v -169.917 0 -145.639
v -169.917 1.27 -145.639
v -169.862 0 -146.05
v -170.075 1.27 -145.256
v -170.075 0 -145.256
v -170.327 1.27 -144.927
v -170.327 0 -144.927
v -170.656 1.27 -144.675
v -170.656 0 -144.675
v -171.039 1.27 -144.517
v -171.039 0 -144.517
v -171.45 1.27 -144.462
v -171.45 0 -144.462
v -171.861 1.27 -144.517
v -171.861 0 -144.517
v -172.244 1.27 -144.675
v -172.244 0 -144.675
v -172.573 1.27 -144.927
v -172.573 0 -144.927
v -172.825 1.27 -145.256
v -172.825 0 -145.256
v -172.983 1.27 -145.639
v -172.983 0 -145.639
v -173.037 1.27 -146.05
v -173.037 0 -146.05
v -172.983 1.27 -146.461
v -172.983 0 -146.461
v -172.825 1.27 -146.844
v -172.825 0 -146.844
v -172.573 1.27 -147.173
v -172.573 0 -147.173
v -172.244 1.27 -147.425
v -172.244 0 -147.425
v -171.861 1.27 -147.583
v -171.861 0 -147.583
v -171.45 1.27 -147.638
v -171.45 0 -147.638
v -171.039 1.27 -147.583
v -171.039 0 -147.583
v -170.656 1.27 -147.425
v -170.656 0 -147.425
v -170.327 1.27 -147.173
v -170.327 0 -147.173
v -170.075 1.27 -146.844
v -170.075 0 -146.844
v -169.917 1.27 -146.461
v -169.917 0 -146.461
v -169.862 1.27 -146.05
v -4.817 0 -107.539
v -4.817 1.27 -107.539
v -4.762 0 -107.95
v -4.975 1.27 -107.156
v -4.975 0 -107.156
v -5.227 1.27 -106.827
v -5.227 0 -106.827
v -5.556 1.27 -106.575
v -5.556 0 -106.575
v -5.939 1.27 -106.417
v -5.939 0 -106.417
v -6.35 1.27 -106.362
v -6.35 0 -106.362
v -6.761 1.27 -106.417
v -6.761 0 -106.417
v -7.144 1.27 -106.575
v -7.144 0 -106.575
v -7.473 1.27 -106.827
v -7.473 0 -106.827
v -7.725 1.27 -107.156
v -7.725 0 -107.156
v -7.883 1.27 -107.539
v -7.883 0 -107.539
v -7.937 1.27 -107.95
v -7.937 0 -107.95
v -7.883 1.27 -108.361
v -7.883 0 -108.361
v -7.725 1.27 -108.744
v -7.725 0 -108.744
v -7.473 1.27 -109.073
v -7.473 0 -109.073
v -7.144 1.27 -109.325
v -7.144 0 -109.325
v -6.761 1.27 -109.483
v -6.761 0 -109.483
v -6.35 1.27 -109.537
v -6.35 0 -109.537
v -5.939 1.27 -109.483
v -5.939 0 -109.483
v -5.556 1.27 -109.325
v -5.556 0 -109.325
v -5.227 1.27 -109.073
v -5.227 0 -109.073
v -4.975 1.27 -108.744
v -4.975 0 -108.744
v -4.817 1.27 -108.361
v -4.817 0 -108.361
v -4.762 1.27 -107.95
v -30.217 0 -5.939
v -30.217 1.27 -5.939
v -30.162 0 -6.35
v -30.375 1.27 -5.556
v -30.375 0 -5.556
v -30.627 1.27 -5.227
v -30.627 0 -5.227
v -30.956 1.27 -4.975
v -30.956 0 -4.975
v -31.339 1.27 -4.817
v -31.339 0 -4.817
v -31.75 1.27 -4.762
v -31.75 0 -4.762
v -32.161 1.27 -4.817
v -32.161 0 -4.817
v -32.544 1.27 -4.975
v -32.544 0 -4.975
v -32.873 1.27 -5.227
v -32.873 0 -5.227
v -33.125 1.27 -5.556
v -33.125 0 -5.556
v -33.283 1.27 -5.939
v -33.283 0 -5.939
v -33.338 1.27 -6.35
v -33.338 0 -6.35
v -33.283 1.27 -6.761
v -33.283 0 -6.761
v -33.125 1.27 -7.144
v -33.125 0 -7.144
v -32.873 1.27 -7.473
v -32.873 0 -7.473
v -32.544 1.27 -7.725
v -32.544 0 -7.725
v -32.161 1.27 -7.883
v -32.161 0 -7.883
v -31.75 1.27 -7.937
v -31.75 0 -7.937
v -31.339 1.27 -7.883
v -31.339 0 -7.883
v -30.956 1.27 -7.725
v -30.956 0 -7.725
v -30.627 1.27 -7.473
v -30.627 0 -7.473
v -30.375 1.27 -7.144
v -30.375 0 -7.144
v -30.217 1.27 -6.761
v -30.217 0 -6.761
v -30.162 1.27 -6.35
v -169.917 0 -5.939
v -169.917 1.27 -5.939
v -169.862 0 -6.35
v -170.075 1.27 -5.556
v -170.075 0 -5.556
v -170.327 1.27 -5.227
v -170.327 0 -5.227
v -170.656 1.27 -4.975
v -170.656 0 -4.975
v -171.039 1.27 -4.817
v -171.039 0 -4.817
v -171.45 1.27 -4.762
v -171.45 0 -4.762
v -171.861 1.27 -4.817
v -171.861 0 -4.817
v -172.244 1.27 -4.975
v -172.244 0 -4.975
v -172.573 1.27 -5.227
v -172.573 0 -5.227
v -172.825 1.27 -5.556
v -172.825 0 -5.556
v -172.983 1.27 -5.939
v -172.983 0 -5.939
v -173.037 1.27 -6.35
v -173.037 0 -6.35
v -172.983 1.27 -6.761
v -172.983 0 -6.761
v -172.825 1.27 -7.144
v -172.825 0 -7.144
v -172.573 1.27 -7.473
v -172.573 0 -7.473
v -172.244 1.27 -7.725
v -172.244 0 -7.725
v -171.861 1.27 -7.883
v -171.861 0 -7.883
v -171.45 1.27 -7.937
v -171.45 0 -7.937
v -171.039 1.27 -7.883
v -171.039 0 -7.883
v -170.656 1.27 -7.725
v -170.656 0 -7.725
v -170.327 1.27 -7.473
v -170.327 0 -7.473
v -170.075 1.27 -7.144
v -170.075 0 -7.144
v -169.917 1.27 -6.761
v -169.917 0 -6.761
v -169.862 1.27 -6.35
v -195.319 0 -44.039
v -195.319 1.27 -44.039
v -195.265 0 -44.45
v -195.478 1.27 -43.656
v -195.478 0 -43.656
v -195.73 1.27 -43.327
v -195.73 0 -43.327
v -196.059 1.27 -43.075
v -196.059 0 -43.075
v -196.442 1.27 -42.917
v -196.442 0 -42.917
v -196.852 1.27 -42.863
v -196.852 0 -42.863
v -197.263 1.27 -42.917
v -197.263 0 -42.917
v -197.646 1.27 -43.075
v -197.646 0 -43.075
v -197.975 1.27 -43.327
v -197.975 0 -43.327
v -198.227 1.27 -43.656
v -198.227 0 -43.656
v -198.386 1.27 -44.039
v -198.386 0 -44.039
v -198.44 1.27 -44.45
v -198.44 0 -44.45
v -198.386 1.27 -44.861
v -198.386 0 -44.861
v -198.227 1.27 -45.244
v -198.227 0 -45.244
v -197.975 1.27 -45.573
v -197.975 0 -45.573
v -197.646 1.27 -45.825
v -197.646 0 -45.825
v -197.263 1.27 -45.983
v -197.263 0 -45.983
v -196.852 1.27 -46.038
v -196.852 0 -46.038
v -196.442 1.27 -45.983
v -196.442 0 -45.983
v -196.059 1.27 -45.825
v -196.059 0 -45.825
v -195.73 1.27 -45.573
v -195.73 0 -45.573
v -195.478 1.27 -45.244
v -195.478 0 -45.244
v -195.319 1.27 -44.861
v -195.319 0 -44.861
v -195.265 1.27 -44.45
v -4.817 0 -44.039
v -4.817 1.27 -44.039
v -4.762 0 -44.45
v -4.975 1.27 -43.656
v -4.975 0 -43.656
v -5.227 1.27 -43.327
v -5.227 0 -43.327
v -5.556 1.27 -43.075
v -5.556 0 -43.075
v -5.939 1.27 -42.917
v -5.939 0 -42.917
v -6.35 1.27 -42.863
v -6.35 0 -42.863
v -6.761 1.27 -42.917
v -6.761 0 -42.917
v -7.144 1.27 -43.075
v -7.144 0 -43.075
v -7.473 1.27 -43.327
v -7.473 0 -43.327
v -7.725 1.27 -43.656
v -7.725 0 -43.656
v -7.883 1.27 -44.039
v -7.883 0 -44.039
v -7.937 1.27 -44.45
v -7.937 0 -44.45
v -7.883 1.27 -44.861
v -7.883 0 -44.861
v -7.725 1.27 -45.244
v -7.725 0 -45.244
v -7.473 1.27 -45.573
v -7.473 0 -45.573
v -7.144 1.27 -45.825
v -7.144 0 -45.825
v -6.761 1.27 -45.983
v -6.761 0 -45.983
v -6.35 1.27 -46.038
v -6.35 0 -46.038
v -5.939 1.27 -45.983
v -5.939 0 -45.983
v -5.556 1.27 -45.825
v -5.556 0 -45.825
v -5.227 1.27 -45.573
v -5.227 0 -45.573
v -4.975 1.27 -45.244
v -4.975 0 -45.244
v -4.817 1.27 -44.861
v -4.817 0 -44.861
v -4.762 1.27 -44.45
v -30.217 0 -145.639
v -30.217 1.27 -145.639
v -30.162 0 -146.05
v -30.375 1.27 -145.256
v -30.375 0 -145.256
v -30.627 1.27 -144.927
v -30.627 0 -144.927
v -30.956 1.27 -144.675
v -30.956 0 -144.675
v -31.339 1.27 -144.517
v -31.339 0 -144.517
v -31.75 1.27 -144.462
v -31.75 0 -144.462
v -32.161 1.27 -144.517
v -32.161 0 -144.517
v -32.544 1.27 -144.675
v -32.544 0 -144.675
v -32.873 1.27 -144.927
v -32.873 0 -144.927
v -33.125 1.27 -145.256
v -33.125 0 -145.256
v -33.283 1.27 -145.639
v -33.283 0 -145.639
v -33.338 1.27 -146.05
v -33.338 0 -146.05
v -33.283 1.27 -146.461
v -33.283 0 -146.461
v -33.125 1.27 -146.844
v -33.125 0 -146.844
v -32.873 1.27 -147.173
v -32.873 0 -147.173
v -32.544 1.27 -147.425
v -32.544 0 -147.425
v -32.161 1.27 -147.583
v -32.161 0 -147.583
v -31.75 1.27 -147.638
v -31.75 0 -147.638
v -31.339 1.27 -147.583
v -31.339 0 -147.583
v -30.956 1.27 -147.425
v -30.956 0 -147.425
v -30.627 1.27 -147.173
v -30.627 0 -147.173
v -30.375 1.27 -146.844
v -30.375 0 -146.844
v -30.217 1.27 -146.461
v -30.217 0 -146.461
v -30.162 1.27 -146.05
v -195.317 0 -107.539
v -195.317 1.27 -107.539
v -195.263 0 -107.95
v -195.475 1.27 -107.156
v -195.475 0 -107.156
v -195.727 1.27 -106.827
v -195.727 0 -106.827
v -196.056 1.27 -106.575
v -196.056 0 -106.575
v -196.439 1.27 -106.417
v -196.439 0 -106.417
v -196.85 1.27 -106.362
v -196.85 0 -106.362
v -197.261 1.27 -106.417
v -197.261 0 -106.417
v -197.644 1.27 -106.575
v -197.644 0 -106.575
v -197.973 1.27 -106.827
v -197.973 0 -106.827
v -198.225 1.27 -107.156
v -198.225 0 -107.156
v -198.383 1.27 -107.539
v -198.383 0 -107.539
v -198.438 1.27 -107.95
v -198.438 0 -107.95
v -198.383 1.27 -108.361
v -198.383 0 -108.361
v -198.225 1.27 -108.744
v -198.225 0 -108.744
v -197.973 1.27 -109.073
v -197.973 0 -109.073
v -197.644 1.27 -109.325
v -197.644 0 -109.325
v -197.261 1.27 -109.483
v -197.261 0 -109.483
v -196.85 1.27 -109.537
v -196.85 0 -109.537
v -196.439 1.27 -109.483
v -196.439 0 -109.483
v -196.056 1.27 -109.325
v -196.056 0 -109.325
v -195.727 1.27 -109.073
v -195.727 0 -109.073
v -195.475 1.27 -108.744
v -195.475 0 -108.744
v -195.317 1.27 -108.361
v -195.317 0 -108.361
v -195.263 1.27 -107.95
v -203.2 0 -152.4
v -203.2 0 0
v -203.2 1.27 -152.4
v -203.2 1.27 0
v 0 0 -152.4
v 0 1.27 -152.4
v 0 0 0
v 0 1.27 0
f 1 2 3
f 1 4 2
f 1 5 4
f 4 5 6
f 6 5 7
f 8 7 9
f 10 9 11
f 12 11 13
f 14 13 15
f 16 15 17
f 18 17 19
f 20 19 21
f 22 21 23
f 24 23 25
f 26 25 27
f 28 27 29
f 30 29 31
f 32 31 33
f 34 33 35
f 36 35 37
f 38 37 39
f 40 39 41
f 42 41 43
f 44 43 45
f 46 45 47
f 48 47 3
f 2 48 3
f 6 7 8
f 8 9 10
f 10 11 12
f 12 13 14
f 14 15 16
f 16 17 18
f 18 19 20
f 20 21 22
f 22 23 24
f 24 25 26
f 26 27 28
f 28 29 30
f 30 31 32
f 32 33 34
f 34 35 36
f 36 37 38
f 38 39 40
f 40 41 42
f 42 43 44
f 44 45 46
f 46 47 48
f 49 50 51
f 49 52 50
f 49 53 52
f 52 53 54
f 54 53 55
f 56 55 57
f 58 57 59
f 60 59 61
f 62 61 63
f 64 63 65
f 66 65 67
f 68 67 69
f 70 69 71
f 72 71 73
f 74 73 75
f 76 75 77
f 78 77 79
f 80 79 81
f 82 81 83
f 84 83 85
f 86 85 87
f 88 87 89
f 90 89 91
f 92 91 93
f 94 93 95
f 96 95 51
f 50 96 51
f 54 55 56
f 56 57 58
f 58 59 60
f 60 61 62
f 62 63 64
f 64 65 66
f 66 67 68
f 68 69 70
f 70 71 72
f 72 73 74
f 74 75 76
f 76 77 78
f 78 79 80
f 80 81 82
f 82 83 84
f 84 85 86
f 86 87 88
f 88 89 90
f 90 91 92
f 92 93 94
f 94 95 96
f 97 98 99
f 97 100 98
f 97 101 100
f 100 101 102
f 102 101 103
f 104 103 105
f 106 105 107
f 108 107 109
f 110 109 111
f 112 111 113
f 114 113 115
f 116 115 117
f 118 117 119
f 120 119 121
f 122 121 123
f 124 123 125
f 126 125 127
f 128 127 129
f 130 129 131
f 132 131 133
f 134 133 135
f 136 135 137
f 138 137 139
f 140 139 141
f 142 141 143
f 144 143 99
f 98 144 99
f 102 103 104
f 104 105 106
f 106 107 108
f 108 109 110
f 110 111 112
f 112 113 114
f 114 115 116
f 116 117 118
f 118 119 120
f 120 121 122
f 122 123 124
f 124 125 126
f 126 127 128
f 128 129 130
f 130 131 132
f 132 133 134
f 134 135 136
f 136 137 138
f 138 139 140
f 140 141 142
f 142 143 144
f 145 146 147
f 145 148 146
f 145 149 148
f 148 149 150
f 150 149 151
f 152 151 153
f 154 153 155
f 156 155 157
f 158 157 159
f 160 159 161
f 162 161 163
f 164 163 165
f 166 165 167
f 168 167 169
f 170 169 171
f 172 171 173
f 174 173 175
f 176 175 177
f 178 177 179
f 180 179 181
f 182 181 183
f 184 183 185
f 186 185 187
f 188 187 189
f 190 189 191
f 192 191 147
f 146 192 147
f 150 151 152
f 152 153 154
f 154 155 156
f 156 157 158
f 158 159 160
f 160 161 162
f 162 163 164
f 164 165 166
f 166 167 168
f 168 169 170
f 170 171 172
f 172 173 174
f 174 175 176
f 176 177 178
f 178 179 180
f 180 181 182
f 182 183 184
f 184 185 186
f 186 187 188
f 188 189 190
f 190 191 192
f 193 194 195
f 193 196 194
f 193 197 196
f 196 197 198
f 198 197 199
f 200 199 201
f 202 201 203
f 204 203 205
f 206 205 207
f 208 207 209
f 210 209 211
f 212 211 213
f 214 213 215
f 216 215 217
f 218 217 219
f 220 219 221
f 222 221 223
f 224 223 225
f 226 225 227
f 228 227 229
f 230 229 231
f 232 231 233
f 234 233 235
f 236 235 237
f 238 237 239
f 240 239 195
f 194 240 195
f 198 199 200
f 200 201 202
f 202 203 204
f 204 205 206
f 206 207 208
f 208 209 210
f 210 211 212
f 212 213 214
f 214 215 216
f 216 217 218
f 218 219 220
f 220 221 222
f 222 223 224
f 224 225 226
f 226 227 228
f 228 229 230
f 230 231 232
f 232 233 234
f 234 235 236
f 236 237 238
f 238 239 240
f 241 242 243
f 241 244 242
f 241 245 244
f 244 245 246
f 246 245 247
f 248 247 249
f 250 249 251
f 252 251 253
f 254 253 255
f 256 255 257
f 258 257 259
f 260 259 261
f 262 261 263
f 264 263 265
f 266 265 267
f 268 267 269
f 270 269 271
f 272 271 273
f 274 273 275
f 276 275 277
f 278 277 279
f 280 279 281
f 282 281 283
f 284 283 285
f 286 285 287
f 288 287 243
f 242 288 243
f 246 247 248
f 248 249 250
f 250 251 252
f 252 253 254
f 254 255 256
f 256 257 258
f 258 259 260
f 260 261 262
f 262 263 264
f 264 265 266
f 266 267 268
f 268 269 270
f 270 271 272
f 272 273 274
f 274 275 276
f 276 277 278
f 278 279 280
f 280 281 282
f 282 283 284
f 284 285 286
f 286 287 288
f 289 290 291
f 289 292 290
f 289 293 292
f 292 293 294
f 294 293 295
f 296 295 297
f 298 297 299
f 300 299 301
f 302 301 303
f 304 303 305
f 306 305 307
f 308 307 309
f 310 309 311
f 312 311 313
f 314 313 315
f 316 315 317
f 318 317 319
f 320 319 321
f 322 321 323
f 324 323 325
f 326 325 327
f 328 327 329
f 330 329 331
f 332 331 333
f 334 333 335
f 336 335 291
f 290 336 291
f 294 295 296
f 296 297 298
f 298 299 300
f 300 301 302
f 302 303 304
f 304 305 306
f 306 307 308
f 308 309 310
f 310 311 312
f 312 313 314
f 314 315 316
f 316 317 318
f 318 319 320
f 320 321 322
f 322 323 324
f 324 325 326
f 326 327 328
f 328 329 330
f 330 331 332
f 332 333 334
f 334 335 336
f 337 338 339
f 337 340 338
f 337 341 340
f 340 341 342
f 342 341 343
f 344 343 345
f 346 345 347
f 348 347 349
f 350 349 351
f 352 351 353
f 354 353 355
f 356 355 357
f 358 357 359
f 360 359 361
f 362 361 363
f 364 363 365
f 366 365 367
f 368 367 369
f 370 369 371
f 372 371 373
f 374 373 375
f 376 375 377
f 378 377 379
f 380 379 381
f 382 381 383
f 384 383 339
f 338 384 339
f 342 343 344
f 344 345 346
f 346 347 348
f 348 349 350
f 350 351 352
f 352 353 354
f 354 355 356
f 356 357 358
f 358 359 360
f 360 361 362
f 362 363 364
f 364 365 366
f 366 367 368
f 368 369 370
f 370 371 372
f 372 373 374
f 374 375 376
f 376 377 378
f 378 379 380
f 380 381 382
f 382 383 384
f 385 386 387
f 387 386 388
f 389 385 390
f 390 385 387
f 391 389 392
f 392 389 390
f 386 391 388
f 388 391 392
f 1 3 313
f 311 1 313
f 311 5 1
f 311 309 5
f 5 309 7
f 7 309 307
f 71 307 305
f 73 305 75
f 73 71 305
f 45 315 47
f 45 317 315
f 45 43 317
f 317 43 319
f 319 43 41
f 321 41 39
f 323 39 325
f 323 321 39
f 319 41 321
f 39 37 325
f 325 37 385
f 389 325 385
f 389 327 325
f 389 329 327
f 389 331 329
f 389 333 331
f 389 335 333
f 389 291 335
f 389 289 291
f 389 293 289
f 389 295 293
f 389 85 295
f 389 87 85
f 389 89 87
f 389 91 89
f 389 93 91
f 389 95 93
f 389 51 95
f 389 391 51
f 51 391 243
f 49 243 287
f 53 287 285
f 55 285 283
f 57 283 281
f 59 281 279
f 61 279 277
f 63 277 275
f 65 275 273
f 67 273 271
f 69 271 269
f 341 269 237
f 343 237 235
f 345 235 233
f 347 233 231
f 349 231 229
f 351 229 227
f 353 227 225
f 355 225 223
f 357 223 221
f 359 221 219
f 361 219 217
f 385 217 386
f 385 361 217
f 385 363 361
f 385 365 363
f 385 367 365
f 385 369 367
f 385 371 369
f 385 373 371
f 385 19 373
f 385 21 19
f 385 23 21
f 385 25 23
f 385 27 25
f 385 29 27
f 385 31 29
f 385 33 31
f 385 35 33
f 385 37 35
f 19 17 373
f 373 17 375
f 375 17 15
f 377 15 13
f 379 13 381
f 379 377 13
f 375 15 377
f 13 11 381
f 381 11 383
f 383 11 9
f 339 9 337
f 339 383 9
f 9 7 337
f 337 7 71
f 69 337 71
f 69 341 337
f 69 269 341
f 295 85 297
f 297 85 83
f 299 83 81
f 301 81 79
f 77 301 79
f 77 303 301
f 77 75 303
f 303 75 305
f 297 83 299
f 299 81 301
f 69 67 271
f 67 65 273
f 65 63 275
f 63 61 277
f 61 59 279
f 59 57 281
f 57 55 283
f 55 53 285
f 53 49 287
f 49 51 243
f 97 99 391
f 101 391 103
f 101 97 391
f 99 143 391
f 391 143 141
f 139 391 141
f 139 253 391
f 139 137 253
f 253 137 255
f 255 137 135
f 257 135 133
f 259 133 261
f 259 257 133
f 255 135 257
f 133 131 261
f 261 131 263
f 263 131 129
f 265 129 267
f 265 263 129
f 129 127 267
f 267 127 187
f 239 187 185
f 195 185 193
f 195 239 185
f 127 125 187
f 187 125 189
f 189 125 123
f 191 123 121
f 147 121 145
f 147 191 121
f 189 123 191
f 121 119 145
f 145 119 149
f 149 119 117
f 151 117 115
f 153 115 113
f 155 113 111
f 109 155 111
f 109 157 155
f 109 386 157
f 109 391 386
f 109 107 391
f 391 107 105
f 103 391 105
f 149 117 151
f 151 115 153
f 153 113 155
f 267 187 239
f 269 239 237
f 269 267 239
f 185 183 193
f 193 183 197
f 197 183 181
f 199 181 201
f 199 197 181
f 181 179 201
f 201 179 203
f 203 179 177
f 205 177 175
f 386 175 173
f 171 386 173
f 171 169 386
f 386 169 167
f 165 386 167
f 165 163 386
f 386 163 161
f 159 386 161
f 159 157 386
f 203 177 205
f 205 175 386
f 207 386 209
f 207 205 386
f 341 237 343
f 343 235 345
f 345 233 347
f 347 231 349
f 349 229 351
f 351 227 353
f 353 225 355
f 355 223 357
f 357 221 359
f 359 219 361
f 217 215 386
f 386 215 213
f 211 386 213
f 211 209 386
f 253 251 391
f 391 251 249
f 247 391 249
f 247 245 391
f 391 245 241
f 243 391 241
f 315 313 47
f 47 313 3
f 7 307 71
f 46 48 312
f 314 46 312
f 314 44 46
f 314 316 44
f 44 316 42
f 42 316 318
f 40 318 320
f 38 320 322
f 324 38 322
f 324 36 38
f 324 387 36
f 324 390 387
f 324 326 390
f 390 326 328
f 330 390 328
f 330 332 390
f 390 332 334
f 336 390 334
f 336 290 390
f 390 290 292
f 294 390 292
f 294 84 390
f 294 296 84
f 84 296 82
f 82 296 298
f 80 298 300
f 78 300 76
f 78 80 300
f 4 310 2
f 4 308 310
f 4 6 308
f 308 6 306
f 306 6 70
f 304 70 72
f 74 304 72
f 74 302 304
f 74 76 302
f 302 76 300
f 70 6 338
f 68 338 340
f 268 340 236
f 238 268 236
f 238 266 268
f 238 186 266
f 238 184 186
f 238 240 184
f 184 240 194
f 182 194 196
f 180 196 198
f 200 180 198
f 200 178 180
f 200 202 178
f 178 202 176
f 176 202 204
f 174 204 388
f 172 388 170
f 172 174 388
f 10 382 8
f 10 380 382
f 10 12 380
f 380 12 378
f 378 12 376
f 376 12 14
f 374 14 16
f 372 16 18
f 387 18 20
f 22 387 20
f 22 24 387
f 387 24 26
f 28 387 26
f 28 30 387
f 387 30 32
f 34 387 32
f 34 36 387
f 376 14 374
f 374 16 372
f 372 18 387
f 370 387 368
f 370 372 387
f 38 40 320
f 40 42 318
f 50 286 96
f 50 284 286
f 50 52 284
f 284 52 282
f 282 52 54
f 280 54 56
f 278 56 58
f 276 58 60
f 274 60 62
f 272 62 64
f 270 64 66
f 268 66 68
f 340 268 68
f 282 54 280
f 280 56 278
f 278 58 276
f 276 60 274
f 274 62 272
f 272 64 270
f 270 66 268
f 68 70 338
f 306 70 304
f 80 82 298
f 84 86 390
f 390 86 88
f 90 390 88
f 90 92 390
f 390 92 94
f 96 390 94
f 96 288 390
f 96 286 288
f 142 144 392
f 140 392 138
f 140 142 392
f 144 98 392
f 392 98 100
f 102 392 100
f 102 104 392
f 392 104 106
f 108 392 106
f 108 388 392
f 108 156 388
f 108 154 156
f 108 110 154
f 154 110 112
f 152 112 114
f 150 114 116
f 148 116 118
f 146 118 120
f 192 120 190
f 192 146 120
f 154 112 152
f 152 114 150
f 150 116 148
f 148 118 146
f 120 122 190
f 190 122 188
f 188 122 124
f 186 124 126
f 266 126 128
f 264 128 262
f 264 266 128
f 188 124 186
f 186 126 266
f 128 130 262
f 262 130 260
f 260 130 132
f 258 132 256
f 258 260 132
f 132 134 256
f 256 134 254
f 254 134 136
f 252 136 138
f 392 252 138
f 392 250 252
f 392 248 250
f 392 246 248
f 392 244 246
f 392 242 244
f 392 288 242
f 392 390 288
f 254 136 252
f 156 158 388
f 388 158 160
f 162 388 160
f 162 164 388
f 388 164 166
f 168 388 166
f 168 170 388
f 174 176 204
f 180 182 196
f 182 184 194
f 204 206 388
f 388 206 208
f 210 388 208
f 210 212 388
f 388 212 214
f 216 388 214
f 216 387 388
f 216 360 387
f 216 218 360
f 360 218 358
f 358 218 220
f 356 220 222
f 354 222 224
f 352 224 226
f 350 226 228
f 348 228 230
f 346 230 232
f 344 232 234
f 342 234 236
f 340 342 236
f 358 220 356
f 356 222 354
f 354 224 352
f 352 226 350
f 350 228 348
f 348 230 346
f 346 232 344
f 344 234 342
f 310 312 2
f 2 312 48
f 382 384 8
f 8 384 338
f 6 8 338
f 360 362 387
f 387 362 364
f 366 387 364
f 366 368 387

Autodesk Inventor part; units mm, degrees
ref_plane "YZ Plane" through (0, 0, 0) normal (1, 0, 0) x (0, 1, 0)
ref_plane "XZ Plane" through (0, 0, 0) normal (0, 1, 0) x (-1, 0, 0)
ref_plane "XY Plane" through (0, 0, 0) normal (0, 0, 1) x (1, 0, 0)
sketch "Sketch1" plane through (0, 0, 0) normal (0, 1, 0) x (-1, 0, 0)
  line L0 (0, 0) -> (203.2, 0)
  line L1 (203.2, 0) -> (203.2, -152.4)
  line L2 (203.2, -152.4) -> (0, -152.4)
  line L3 (0, -152.4) -> (0, 0)
  dimension "d0" = 203.2
  dimension "d1" = 152.4
extrude "Extrusion1" add sketch "Sketch1" along normal blind 1.27
sketch "Sketch3" plane through (0, 1.27, 0) normal (0, 1, 0) x (1, 0, 0)
  circle A0 centre (-171.45, 6.35) radius 1.5875
  circle A1 centre (-196.8524, 44.45) radius 1.5875
  circle A2 centre (-31.75, 6.35) radius 1.5875
  circle A3 centre (-6.35, 44.45) radius 1.5875
  circle A4 centre (-6.35, 107.95) radius 1.5875
  circle A5 centre (-31.75, 146.05) radius 1.5875
  circle A6 centre (-171.45, 146.05) radius 1.5875
  circle A7 centre (-196.85, 107.95) radius 1.5875
  line L0 (-203.2, 152.4) -> (-203.2, 0) projected
  line L1 (0, 152.4) -> (-203.2, 152.4) projected
  line L2 (0, 0) -> (0, 152.4) projected
  line L3 (-203.2, 0) -> (0, 0) projected
  dimension "d36" = 3.175
  dimension "d37" = 3.175
  dimension "d38" = 3.175
  dimension "d39" = 3.175
  dimension "d40" = 3.175
  dimension "d41" = 3.175
  dimension "d42" = 3.175
  dimension "d43" = 3.175
  dimension "d45" = 6.35
  dimension "d46" = 44.45
  dimension "d47" = 6.35
  dimension "d48" = 31.75
  dimension "d49" = 31.75
  dimension "d50" = 6.35
  dimension "d51" = 44.45
  dimension "d52" = 6.35
  dimension "d53" = 44.45
  dimension "d54" = 6.35
  dimension "d55" = 31.75
  dimension "d56" = 6.35
  dimension "d57" = 31.75
  dimension "d58" = 6.3476
  dimension "d59" = 44.45
  dimension "d62" = 203.2
  dimension "d63" = 152.4
extrude "Extrusion2" cut sketch "Sketch3" against normal blind 25.4 contours A0 | A1 | A2 | A3 | A4 | A5 | A6 | A7
properties part number "000103"
